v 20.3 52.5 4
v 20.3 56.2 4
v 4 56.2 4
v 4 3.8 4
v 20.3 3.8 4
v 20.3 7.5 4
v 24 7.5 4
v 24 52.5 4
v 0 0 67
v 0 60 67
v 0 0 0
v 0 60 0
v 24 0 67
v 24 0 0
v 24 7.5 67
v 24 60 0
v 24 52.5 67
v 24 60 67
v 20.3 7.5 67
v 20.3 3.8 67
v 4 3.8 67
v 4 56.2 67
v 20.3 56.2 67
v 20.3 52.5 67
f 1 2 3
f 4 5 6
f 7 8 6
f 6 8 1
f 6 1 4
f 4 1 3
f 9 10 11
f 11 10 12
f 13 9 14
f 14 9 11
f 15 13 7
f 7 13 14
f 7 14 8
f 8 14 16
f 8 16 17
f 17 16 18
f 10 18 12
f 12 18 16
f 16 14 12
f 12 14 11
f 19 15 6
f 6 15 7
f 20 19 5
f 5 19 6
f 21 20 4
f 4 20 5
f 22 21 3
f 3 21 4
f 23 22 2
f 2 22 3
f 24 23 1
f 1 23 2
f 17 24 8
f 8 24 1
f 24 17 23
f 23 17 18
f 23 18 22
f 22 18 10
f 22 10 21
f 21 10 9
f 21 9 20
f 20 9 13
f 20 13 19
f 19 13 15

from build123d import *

# Parameters (mm, degrees)
ESQUISSE1_W        = 24
ESQUISSE1_H        = 60
BOSS_EXTRU_1_DEPTH = 4
BOSS_EXTRU_2_DEPTH = 63


with BuildPart() as part:
    # Esquisse1 → Boss.-Extru.1 (new body)
    with BuildSketch(Plane.XY):
        with Locations((12, 30)):
            Rectangle(ESQUISSE1_W, ESQUISSE1_H)
    extrude(amount=BOSS_EXTRU_1_DEPTH)

    # Esquisse2 → Boss.-Extru.2 (add)
    with BuildSketch(Plane.XY.offset(4)):
        Polygon((24, 52.5), (20.3, 52.5), (20.3, 56.2), (4, 56.2), (4, 3.8), (20.3, 3.8), (20.3, 7.5), (24, 7.5), (24, 0), (0, 0), (0, 60), (24, 60), align=None)
    extrude(amount=BOSS_EXTRU_2_DEPTH)


solid = part.part
